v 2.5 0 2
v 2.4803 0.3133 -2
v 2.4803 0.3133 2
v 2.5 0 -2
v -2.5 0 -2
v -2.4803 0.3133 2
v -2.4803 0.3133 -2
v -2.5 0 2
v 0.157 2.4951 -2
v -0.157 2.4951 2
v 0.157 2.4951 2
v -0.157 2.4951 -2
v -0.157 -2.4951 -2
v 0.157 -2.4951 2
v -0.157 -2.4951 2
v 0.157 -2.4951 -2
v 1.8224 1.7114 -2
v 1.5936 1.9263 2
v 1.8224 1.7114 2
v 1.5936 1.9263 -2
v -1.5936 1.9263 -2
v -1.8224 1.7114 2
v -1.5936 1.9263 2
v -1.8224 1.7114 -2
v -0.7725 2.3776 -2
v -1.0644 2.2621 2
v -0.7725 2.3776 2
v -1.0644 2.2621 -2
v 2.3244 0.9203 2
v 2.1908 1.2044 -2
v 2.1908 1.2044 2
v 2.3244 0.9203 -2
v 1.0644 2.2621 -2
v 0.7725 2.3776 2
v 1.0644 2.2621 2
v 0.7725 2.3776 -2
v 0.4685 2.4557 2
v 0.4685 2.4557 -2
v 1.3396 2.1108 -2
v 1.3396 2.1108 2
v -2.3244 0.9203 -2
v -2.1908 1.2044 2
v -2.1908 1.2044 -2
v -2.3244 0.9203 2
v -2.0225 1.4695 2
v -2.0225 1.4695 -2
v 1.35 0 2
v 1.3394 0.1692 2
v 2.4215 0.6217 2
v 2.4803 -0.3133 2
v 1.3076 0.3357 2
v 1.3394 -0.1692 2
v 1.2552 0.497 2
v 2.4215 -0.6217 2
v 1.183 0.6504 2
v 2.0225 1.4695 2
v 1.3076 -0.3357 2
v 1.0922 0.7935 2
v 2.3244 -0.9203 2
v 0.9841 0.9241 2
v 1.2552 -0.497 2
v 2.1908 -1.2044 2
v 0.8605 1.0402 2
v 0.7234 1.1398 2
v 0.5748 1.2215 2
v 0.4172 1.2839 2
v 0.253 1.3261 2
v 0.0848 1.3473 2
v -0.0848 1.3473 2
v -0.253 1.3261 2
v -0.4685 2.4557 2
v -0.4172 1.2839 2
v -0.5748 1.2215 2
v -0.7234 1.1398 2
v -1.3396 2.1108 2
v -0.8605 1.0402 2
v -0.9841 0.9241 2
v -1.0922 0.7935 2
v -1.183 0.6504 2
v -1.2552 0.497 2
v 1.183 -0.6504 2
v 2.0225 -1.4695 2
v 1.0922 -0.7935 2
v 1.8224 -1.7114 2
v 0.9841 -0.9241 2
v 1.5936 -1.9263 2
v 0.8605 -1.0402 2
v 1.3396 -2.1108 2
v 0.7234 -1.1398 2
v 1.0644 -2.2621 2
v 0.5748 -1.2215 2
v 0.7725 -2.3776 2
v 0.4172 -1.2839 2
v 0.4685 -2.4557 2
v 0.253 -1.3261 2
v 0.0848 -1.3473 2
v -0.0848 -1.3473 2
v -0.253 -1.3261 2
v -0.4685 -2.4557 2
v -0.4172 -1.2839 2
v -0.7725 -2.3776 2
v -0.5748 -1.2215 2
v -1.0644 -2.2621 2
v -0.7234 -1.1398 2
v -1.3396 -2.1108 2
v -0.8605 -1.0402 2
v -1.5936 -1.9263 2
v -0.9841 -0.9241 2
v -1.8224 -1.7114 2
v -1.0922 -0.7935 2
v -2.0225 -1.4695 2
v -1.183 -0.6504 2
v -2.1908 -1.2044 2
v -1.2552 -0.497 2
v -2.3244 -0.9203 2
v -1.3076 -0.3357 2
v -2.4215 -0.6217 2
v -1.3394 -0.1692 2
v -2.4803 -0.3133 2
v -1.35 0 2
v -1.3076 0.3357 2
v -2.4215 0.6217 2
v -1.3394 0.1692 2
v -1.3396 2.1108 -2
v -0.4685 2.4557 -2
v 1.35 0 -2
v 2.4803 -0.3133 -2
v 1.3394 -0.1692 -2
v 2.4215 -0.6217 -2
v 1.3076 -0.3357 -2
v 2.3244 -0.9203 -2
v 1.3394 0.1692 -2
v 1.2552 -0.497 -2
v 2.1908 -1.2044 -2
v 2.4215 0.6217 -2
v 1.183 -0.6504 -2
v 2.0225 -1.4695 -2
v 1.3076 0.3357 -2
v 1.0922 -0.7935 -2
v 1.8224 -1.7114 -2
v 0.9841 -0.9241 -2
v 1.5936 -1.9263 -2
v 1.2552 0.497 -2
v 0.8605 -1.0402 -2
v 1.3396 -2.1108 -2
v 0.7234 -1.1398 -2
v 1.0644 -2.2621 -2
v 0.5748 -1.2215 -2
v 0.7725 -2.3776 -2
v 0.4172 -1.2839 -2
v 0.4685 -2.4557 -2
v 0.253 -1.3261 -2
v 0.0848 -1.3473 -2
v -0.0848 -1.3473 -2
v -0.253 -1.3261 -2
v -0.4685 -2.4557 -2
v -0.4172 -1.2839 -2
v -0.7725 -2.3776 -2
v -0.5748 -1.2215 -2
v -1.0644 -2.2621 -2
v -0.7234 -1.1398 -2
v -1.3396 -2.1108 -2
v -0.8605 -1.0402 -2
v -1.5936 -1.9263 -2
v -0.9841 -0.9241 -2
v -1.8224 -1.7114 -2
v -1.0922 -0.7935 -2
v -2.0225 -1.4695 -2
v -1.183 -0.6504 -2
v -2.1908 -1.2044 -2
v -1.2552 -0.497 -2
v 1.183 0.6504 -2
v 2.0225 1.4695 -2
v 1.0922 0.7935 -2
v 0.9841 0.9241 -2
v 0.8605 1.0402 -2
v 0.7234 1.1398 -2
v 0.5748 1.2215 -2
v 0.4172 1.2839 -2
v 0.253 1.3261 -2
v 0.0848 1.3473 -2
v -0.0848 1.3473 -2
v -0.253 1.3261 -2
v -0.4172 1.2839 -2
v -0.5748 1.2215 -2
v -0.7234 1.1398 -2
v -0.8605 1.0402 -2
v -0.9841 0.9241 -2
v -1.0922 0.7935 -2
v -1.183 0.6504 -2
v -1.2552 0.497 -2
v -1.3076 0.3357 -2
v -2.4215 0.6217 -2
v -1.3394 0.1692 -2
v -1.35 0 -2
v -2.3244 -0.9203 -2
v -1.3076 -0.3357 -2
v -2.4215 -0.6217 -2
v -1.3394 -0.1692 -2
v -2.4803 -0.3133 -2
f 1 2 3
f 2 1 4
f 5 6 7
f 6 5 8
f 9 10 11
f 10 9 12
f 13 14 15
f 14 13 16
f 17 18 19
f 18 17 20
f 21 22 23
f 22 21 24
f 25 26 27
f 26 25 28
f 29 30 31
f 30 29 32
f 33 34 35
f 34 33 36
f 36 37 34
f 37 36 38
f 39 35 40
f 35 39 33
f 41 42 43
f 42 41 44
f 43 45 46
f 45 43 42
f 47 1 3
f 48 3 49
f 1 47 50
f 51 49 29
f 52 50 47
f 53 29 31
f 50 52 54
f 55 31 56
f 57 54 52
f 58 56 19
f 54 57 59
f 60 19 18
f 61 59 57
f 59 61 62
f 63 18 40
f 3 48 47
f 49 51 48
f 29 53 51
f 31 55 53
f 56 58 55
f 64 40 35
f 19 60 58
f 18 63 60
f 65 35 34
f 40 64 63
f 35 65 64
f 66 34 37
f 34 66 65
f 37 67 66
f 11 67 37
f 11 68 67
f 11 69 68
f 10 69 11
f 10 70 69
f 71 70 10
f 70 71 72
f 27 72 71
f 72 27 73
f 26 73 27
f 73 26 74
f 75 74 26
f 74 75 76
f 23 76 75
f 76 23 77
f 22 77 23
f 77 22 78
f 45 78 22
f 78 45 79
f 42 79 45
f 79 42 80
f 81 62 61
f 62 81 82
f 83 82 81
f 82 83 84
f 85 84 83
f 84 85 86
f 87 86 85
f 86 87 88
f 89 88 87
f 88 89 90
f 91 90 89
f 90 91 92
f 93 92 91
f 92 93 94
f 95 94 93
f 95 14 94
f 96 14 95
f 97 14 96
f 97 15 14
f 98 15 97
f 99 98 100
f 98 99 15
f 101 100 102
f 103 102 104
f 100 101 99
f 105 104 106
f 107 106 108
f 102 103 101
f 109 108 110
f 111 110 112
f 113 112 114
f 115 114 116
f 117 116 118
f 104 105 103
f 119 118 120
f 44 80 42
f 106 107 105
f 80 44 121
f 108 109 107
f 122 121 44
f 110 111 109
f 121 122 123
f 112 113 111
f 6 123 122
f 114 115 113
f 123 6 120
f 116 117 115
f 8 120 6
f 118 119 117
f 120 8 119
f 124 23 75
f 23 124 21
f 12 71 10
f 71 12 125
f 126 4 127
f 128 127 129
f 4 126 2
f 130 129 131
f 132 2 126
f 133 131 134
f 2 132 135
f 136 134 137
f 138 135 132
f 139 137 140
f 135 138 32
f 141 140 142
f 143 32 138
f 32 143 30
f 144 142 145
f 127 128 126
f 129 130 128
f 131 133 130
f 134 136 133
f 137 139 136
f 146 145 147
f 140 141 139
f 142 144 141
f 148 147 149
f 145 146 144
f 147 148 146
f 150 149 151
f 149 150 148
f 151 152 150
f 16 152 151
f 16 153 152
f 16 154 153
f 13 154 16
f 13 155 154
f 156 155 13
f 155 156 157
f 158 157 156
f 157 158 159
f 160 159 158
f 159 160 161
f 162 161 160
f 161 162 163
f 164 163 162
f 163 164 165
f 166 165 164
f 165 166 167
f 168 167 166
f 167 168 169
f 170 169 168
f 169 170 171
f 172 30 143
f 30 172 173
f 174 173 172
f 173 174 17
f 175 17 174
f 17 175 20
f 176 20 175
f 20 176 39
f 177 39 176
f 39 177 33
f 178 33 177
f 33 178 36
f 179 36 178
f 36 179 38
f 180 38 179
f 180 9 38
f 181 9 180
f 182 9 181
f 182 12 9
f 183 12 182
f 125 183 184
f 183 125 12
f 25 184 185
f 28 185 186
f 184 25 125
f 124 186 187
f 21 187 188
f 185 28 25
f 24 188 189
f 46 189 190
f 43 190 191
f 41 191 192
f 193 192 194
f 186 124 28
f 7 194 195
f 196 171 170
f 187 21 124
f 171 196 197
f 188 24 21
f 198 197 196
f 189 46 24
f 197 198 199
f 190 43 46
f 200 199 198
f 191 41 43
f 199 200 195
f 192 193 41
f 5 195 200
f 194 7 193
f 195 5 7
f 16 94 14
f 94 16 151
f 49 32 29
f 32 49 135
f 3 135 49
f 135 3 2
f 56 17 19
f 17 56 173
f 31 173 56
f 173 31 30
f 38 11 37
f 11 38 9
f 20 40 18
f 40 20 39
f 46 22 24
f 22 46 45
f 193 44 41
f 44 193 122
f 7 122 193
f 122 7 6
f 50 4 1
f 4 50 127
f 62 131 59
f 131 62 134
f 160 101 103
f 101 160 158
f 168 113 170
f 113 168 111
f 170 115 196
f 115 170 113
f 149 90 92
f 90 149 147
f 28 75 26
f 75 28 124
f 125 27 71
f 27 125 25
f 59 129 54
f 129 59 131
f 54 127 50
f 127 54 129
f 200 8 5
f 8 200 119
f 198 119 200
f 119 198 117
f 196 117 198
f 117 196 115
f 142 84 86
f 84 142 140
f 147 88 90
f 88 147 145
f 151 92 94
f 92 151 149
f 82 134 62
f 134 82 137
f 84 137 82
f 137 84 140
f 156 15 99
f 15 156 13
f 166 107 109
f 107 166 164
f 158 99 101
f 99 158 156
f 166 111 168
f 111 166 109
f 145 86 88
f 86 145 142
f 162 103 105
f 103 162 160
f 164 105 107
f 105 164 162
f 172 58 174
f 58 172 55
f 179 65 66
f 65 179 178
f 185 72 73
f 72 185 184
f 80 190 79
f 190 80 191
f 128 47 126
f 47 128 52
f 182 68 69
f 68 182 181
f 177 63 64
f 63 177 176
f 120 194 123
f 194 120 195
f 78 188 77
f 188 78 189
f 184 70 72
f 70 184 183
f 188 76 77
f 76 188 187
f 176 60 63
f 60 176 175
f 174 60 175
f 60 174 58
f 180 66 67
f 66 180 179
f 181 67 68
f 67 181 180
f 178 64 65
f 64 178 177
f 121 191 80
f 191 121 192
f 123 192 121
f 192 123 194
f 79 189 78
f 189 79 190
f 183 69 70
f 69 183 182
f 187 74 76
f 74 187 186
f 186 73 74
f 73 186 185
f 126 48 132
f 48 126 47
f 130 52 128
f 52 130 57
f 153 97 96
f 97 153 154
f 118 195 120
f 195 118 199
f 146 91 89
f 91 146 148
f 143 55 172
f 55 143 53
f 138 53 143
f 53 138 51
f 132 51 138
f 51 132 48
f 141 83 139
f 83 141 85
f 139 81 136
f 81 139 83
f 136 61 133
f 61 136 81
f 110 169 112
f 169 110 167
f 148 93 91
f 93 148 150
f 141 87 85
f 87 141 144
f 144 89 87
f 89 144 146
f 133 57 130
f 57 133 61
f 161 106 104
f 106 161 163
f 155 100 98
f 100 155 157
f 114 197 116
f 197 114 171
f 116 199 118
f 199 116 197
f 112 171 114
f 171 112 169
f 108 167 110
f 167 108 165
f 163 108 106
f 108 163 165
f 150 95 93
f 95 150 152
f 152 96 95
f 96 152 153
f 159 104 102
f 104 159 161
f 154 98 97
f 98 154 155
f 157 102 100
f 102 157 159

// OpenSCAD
$fn = 50;


difference() {
	union() {
		translate(v = [0, 0, -2.0000000000]) {
			cylinder(h = 4, r = 2.5000000000);
		}
	}
	union() {
		translate(v = [0, 0, -100.0000000000]) {
			cylinder(h = 200, r = 1.3500000000);
		}
	}
}
